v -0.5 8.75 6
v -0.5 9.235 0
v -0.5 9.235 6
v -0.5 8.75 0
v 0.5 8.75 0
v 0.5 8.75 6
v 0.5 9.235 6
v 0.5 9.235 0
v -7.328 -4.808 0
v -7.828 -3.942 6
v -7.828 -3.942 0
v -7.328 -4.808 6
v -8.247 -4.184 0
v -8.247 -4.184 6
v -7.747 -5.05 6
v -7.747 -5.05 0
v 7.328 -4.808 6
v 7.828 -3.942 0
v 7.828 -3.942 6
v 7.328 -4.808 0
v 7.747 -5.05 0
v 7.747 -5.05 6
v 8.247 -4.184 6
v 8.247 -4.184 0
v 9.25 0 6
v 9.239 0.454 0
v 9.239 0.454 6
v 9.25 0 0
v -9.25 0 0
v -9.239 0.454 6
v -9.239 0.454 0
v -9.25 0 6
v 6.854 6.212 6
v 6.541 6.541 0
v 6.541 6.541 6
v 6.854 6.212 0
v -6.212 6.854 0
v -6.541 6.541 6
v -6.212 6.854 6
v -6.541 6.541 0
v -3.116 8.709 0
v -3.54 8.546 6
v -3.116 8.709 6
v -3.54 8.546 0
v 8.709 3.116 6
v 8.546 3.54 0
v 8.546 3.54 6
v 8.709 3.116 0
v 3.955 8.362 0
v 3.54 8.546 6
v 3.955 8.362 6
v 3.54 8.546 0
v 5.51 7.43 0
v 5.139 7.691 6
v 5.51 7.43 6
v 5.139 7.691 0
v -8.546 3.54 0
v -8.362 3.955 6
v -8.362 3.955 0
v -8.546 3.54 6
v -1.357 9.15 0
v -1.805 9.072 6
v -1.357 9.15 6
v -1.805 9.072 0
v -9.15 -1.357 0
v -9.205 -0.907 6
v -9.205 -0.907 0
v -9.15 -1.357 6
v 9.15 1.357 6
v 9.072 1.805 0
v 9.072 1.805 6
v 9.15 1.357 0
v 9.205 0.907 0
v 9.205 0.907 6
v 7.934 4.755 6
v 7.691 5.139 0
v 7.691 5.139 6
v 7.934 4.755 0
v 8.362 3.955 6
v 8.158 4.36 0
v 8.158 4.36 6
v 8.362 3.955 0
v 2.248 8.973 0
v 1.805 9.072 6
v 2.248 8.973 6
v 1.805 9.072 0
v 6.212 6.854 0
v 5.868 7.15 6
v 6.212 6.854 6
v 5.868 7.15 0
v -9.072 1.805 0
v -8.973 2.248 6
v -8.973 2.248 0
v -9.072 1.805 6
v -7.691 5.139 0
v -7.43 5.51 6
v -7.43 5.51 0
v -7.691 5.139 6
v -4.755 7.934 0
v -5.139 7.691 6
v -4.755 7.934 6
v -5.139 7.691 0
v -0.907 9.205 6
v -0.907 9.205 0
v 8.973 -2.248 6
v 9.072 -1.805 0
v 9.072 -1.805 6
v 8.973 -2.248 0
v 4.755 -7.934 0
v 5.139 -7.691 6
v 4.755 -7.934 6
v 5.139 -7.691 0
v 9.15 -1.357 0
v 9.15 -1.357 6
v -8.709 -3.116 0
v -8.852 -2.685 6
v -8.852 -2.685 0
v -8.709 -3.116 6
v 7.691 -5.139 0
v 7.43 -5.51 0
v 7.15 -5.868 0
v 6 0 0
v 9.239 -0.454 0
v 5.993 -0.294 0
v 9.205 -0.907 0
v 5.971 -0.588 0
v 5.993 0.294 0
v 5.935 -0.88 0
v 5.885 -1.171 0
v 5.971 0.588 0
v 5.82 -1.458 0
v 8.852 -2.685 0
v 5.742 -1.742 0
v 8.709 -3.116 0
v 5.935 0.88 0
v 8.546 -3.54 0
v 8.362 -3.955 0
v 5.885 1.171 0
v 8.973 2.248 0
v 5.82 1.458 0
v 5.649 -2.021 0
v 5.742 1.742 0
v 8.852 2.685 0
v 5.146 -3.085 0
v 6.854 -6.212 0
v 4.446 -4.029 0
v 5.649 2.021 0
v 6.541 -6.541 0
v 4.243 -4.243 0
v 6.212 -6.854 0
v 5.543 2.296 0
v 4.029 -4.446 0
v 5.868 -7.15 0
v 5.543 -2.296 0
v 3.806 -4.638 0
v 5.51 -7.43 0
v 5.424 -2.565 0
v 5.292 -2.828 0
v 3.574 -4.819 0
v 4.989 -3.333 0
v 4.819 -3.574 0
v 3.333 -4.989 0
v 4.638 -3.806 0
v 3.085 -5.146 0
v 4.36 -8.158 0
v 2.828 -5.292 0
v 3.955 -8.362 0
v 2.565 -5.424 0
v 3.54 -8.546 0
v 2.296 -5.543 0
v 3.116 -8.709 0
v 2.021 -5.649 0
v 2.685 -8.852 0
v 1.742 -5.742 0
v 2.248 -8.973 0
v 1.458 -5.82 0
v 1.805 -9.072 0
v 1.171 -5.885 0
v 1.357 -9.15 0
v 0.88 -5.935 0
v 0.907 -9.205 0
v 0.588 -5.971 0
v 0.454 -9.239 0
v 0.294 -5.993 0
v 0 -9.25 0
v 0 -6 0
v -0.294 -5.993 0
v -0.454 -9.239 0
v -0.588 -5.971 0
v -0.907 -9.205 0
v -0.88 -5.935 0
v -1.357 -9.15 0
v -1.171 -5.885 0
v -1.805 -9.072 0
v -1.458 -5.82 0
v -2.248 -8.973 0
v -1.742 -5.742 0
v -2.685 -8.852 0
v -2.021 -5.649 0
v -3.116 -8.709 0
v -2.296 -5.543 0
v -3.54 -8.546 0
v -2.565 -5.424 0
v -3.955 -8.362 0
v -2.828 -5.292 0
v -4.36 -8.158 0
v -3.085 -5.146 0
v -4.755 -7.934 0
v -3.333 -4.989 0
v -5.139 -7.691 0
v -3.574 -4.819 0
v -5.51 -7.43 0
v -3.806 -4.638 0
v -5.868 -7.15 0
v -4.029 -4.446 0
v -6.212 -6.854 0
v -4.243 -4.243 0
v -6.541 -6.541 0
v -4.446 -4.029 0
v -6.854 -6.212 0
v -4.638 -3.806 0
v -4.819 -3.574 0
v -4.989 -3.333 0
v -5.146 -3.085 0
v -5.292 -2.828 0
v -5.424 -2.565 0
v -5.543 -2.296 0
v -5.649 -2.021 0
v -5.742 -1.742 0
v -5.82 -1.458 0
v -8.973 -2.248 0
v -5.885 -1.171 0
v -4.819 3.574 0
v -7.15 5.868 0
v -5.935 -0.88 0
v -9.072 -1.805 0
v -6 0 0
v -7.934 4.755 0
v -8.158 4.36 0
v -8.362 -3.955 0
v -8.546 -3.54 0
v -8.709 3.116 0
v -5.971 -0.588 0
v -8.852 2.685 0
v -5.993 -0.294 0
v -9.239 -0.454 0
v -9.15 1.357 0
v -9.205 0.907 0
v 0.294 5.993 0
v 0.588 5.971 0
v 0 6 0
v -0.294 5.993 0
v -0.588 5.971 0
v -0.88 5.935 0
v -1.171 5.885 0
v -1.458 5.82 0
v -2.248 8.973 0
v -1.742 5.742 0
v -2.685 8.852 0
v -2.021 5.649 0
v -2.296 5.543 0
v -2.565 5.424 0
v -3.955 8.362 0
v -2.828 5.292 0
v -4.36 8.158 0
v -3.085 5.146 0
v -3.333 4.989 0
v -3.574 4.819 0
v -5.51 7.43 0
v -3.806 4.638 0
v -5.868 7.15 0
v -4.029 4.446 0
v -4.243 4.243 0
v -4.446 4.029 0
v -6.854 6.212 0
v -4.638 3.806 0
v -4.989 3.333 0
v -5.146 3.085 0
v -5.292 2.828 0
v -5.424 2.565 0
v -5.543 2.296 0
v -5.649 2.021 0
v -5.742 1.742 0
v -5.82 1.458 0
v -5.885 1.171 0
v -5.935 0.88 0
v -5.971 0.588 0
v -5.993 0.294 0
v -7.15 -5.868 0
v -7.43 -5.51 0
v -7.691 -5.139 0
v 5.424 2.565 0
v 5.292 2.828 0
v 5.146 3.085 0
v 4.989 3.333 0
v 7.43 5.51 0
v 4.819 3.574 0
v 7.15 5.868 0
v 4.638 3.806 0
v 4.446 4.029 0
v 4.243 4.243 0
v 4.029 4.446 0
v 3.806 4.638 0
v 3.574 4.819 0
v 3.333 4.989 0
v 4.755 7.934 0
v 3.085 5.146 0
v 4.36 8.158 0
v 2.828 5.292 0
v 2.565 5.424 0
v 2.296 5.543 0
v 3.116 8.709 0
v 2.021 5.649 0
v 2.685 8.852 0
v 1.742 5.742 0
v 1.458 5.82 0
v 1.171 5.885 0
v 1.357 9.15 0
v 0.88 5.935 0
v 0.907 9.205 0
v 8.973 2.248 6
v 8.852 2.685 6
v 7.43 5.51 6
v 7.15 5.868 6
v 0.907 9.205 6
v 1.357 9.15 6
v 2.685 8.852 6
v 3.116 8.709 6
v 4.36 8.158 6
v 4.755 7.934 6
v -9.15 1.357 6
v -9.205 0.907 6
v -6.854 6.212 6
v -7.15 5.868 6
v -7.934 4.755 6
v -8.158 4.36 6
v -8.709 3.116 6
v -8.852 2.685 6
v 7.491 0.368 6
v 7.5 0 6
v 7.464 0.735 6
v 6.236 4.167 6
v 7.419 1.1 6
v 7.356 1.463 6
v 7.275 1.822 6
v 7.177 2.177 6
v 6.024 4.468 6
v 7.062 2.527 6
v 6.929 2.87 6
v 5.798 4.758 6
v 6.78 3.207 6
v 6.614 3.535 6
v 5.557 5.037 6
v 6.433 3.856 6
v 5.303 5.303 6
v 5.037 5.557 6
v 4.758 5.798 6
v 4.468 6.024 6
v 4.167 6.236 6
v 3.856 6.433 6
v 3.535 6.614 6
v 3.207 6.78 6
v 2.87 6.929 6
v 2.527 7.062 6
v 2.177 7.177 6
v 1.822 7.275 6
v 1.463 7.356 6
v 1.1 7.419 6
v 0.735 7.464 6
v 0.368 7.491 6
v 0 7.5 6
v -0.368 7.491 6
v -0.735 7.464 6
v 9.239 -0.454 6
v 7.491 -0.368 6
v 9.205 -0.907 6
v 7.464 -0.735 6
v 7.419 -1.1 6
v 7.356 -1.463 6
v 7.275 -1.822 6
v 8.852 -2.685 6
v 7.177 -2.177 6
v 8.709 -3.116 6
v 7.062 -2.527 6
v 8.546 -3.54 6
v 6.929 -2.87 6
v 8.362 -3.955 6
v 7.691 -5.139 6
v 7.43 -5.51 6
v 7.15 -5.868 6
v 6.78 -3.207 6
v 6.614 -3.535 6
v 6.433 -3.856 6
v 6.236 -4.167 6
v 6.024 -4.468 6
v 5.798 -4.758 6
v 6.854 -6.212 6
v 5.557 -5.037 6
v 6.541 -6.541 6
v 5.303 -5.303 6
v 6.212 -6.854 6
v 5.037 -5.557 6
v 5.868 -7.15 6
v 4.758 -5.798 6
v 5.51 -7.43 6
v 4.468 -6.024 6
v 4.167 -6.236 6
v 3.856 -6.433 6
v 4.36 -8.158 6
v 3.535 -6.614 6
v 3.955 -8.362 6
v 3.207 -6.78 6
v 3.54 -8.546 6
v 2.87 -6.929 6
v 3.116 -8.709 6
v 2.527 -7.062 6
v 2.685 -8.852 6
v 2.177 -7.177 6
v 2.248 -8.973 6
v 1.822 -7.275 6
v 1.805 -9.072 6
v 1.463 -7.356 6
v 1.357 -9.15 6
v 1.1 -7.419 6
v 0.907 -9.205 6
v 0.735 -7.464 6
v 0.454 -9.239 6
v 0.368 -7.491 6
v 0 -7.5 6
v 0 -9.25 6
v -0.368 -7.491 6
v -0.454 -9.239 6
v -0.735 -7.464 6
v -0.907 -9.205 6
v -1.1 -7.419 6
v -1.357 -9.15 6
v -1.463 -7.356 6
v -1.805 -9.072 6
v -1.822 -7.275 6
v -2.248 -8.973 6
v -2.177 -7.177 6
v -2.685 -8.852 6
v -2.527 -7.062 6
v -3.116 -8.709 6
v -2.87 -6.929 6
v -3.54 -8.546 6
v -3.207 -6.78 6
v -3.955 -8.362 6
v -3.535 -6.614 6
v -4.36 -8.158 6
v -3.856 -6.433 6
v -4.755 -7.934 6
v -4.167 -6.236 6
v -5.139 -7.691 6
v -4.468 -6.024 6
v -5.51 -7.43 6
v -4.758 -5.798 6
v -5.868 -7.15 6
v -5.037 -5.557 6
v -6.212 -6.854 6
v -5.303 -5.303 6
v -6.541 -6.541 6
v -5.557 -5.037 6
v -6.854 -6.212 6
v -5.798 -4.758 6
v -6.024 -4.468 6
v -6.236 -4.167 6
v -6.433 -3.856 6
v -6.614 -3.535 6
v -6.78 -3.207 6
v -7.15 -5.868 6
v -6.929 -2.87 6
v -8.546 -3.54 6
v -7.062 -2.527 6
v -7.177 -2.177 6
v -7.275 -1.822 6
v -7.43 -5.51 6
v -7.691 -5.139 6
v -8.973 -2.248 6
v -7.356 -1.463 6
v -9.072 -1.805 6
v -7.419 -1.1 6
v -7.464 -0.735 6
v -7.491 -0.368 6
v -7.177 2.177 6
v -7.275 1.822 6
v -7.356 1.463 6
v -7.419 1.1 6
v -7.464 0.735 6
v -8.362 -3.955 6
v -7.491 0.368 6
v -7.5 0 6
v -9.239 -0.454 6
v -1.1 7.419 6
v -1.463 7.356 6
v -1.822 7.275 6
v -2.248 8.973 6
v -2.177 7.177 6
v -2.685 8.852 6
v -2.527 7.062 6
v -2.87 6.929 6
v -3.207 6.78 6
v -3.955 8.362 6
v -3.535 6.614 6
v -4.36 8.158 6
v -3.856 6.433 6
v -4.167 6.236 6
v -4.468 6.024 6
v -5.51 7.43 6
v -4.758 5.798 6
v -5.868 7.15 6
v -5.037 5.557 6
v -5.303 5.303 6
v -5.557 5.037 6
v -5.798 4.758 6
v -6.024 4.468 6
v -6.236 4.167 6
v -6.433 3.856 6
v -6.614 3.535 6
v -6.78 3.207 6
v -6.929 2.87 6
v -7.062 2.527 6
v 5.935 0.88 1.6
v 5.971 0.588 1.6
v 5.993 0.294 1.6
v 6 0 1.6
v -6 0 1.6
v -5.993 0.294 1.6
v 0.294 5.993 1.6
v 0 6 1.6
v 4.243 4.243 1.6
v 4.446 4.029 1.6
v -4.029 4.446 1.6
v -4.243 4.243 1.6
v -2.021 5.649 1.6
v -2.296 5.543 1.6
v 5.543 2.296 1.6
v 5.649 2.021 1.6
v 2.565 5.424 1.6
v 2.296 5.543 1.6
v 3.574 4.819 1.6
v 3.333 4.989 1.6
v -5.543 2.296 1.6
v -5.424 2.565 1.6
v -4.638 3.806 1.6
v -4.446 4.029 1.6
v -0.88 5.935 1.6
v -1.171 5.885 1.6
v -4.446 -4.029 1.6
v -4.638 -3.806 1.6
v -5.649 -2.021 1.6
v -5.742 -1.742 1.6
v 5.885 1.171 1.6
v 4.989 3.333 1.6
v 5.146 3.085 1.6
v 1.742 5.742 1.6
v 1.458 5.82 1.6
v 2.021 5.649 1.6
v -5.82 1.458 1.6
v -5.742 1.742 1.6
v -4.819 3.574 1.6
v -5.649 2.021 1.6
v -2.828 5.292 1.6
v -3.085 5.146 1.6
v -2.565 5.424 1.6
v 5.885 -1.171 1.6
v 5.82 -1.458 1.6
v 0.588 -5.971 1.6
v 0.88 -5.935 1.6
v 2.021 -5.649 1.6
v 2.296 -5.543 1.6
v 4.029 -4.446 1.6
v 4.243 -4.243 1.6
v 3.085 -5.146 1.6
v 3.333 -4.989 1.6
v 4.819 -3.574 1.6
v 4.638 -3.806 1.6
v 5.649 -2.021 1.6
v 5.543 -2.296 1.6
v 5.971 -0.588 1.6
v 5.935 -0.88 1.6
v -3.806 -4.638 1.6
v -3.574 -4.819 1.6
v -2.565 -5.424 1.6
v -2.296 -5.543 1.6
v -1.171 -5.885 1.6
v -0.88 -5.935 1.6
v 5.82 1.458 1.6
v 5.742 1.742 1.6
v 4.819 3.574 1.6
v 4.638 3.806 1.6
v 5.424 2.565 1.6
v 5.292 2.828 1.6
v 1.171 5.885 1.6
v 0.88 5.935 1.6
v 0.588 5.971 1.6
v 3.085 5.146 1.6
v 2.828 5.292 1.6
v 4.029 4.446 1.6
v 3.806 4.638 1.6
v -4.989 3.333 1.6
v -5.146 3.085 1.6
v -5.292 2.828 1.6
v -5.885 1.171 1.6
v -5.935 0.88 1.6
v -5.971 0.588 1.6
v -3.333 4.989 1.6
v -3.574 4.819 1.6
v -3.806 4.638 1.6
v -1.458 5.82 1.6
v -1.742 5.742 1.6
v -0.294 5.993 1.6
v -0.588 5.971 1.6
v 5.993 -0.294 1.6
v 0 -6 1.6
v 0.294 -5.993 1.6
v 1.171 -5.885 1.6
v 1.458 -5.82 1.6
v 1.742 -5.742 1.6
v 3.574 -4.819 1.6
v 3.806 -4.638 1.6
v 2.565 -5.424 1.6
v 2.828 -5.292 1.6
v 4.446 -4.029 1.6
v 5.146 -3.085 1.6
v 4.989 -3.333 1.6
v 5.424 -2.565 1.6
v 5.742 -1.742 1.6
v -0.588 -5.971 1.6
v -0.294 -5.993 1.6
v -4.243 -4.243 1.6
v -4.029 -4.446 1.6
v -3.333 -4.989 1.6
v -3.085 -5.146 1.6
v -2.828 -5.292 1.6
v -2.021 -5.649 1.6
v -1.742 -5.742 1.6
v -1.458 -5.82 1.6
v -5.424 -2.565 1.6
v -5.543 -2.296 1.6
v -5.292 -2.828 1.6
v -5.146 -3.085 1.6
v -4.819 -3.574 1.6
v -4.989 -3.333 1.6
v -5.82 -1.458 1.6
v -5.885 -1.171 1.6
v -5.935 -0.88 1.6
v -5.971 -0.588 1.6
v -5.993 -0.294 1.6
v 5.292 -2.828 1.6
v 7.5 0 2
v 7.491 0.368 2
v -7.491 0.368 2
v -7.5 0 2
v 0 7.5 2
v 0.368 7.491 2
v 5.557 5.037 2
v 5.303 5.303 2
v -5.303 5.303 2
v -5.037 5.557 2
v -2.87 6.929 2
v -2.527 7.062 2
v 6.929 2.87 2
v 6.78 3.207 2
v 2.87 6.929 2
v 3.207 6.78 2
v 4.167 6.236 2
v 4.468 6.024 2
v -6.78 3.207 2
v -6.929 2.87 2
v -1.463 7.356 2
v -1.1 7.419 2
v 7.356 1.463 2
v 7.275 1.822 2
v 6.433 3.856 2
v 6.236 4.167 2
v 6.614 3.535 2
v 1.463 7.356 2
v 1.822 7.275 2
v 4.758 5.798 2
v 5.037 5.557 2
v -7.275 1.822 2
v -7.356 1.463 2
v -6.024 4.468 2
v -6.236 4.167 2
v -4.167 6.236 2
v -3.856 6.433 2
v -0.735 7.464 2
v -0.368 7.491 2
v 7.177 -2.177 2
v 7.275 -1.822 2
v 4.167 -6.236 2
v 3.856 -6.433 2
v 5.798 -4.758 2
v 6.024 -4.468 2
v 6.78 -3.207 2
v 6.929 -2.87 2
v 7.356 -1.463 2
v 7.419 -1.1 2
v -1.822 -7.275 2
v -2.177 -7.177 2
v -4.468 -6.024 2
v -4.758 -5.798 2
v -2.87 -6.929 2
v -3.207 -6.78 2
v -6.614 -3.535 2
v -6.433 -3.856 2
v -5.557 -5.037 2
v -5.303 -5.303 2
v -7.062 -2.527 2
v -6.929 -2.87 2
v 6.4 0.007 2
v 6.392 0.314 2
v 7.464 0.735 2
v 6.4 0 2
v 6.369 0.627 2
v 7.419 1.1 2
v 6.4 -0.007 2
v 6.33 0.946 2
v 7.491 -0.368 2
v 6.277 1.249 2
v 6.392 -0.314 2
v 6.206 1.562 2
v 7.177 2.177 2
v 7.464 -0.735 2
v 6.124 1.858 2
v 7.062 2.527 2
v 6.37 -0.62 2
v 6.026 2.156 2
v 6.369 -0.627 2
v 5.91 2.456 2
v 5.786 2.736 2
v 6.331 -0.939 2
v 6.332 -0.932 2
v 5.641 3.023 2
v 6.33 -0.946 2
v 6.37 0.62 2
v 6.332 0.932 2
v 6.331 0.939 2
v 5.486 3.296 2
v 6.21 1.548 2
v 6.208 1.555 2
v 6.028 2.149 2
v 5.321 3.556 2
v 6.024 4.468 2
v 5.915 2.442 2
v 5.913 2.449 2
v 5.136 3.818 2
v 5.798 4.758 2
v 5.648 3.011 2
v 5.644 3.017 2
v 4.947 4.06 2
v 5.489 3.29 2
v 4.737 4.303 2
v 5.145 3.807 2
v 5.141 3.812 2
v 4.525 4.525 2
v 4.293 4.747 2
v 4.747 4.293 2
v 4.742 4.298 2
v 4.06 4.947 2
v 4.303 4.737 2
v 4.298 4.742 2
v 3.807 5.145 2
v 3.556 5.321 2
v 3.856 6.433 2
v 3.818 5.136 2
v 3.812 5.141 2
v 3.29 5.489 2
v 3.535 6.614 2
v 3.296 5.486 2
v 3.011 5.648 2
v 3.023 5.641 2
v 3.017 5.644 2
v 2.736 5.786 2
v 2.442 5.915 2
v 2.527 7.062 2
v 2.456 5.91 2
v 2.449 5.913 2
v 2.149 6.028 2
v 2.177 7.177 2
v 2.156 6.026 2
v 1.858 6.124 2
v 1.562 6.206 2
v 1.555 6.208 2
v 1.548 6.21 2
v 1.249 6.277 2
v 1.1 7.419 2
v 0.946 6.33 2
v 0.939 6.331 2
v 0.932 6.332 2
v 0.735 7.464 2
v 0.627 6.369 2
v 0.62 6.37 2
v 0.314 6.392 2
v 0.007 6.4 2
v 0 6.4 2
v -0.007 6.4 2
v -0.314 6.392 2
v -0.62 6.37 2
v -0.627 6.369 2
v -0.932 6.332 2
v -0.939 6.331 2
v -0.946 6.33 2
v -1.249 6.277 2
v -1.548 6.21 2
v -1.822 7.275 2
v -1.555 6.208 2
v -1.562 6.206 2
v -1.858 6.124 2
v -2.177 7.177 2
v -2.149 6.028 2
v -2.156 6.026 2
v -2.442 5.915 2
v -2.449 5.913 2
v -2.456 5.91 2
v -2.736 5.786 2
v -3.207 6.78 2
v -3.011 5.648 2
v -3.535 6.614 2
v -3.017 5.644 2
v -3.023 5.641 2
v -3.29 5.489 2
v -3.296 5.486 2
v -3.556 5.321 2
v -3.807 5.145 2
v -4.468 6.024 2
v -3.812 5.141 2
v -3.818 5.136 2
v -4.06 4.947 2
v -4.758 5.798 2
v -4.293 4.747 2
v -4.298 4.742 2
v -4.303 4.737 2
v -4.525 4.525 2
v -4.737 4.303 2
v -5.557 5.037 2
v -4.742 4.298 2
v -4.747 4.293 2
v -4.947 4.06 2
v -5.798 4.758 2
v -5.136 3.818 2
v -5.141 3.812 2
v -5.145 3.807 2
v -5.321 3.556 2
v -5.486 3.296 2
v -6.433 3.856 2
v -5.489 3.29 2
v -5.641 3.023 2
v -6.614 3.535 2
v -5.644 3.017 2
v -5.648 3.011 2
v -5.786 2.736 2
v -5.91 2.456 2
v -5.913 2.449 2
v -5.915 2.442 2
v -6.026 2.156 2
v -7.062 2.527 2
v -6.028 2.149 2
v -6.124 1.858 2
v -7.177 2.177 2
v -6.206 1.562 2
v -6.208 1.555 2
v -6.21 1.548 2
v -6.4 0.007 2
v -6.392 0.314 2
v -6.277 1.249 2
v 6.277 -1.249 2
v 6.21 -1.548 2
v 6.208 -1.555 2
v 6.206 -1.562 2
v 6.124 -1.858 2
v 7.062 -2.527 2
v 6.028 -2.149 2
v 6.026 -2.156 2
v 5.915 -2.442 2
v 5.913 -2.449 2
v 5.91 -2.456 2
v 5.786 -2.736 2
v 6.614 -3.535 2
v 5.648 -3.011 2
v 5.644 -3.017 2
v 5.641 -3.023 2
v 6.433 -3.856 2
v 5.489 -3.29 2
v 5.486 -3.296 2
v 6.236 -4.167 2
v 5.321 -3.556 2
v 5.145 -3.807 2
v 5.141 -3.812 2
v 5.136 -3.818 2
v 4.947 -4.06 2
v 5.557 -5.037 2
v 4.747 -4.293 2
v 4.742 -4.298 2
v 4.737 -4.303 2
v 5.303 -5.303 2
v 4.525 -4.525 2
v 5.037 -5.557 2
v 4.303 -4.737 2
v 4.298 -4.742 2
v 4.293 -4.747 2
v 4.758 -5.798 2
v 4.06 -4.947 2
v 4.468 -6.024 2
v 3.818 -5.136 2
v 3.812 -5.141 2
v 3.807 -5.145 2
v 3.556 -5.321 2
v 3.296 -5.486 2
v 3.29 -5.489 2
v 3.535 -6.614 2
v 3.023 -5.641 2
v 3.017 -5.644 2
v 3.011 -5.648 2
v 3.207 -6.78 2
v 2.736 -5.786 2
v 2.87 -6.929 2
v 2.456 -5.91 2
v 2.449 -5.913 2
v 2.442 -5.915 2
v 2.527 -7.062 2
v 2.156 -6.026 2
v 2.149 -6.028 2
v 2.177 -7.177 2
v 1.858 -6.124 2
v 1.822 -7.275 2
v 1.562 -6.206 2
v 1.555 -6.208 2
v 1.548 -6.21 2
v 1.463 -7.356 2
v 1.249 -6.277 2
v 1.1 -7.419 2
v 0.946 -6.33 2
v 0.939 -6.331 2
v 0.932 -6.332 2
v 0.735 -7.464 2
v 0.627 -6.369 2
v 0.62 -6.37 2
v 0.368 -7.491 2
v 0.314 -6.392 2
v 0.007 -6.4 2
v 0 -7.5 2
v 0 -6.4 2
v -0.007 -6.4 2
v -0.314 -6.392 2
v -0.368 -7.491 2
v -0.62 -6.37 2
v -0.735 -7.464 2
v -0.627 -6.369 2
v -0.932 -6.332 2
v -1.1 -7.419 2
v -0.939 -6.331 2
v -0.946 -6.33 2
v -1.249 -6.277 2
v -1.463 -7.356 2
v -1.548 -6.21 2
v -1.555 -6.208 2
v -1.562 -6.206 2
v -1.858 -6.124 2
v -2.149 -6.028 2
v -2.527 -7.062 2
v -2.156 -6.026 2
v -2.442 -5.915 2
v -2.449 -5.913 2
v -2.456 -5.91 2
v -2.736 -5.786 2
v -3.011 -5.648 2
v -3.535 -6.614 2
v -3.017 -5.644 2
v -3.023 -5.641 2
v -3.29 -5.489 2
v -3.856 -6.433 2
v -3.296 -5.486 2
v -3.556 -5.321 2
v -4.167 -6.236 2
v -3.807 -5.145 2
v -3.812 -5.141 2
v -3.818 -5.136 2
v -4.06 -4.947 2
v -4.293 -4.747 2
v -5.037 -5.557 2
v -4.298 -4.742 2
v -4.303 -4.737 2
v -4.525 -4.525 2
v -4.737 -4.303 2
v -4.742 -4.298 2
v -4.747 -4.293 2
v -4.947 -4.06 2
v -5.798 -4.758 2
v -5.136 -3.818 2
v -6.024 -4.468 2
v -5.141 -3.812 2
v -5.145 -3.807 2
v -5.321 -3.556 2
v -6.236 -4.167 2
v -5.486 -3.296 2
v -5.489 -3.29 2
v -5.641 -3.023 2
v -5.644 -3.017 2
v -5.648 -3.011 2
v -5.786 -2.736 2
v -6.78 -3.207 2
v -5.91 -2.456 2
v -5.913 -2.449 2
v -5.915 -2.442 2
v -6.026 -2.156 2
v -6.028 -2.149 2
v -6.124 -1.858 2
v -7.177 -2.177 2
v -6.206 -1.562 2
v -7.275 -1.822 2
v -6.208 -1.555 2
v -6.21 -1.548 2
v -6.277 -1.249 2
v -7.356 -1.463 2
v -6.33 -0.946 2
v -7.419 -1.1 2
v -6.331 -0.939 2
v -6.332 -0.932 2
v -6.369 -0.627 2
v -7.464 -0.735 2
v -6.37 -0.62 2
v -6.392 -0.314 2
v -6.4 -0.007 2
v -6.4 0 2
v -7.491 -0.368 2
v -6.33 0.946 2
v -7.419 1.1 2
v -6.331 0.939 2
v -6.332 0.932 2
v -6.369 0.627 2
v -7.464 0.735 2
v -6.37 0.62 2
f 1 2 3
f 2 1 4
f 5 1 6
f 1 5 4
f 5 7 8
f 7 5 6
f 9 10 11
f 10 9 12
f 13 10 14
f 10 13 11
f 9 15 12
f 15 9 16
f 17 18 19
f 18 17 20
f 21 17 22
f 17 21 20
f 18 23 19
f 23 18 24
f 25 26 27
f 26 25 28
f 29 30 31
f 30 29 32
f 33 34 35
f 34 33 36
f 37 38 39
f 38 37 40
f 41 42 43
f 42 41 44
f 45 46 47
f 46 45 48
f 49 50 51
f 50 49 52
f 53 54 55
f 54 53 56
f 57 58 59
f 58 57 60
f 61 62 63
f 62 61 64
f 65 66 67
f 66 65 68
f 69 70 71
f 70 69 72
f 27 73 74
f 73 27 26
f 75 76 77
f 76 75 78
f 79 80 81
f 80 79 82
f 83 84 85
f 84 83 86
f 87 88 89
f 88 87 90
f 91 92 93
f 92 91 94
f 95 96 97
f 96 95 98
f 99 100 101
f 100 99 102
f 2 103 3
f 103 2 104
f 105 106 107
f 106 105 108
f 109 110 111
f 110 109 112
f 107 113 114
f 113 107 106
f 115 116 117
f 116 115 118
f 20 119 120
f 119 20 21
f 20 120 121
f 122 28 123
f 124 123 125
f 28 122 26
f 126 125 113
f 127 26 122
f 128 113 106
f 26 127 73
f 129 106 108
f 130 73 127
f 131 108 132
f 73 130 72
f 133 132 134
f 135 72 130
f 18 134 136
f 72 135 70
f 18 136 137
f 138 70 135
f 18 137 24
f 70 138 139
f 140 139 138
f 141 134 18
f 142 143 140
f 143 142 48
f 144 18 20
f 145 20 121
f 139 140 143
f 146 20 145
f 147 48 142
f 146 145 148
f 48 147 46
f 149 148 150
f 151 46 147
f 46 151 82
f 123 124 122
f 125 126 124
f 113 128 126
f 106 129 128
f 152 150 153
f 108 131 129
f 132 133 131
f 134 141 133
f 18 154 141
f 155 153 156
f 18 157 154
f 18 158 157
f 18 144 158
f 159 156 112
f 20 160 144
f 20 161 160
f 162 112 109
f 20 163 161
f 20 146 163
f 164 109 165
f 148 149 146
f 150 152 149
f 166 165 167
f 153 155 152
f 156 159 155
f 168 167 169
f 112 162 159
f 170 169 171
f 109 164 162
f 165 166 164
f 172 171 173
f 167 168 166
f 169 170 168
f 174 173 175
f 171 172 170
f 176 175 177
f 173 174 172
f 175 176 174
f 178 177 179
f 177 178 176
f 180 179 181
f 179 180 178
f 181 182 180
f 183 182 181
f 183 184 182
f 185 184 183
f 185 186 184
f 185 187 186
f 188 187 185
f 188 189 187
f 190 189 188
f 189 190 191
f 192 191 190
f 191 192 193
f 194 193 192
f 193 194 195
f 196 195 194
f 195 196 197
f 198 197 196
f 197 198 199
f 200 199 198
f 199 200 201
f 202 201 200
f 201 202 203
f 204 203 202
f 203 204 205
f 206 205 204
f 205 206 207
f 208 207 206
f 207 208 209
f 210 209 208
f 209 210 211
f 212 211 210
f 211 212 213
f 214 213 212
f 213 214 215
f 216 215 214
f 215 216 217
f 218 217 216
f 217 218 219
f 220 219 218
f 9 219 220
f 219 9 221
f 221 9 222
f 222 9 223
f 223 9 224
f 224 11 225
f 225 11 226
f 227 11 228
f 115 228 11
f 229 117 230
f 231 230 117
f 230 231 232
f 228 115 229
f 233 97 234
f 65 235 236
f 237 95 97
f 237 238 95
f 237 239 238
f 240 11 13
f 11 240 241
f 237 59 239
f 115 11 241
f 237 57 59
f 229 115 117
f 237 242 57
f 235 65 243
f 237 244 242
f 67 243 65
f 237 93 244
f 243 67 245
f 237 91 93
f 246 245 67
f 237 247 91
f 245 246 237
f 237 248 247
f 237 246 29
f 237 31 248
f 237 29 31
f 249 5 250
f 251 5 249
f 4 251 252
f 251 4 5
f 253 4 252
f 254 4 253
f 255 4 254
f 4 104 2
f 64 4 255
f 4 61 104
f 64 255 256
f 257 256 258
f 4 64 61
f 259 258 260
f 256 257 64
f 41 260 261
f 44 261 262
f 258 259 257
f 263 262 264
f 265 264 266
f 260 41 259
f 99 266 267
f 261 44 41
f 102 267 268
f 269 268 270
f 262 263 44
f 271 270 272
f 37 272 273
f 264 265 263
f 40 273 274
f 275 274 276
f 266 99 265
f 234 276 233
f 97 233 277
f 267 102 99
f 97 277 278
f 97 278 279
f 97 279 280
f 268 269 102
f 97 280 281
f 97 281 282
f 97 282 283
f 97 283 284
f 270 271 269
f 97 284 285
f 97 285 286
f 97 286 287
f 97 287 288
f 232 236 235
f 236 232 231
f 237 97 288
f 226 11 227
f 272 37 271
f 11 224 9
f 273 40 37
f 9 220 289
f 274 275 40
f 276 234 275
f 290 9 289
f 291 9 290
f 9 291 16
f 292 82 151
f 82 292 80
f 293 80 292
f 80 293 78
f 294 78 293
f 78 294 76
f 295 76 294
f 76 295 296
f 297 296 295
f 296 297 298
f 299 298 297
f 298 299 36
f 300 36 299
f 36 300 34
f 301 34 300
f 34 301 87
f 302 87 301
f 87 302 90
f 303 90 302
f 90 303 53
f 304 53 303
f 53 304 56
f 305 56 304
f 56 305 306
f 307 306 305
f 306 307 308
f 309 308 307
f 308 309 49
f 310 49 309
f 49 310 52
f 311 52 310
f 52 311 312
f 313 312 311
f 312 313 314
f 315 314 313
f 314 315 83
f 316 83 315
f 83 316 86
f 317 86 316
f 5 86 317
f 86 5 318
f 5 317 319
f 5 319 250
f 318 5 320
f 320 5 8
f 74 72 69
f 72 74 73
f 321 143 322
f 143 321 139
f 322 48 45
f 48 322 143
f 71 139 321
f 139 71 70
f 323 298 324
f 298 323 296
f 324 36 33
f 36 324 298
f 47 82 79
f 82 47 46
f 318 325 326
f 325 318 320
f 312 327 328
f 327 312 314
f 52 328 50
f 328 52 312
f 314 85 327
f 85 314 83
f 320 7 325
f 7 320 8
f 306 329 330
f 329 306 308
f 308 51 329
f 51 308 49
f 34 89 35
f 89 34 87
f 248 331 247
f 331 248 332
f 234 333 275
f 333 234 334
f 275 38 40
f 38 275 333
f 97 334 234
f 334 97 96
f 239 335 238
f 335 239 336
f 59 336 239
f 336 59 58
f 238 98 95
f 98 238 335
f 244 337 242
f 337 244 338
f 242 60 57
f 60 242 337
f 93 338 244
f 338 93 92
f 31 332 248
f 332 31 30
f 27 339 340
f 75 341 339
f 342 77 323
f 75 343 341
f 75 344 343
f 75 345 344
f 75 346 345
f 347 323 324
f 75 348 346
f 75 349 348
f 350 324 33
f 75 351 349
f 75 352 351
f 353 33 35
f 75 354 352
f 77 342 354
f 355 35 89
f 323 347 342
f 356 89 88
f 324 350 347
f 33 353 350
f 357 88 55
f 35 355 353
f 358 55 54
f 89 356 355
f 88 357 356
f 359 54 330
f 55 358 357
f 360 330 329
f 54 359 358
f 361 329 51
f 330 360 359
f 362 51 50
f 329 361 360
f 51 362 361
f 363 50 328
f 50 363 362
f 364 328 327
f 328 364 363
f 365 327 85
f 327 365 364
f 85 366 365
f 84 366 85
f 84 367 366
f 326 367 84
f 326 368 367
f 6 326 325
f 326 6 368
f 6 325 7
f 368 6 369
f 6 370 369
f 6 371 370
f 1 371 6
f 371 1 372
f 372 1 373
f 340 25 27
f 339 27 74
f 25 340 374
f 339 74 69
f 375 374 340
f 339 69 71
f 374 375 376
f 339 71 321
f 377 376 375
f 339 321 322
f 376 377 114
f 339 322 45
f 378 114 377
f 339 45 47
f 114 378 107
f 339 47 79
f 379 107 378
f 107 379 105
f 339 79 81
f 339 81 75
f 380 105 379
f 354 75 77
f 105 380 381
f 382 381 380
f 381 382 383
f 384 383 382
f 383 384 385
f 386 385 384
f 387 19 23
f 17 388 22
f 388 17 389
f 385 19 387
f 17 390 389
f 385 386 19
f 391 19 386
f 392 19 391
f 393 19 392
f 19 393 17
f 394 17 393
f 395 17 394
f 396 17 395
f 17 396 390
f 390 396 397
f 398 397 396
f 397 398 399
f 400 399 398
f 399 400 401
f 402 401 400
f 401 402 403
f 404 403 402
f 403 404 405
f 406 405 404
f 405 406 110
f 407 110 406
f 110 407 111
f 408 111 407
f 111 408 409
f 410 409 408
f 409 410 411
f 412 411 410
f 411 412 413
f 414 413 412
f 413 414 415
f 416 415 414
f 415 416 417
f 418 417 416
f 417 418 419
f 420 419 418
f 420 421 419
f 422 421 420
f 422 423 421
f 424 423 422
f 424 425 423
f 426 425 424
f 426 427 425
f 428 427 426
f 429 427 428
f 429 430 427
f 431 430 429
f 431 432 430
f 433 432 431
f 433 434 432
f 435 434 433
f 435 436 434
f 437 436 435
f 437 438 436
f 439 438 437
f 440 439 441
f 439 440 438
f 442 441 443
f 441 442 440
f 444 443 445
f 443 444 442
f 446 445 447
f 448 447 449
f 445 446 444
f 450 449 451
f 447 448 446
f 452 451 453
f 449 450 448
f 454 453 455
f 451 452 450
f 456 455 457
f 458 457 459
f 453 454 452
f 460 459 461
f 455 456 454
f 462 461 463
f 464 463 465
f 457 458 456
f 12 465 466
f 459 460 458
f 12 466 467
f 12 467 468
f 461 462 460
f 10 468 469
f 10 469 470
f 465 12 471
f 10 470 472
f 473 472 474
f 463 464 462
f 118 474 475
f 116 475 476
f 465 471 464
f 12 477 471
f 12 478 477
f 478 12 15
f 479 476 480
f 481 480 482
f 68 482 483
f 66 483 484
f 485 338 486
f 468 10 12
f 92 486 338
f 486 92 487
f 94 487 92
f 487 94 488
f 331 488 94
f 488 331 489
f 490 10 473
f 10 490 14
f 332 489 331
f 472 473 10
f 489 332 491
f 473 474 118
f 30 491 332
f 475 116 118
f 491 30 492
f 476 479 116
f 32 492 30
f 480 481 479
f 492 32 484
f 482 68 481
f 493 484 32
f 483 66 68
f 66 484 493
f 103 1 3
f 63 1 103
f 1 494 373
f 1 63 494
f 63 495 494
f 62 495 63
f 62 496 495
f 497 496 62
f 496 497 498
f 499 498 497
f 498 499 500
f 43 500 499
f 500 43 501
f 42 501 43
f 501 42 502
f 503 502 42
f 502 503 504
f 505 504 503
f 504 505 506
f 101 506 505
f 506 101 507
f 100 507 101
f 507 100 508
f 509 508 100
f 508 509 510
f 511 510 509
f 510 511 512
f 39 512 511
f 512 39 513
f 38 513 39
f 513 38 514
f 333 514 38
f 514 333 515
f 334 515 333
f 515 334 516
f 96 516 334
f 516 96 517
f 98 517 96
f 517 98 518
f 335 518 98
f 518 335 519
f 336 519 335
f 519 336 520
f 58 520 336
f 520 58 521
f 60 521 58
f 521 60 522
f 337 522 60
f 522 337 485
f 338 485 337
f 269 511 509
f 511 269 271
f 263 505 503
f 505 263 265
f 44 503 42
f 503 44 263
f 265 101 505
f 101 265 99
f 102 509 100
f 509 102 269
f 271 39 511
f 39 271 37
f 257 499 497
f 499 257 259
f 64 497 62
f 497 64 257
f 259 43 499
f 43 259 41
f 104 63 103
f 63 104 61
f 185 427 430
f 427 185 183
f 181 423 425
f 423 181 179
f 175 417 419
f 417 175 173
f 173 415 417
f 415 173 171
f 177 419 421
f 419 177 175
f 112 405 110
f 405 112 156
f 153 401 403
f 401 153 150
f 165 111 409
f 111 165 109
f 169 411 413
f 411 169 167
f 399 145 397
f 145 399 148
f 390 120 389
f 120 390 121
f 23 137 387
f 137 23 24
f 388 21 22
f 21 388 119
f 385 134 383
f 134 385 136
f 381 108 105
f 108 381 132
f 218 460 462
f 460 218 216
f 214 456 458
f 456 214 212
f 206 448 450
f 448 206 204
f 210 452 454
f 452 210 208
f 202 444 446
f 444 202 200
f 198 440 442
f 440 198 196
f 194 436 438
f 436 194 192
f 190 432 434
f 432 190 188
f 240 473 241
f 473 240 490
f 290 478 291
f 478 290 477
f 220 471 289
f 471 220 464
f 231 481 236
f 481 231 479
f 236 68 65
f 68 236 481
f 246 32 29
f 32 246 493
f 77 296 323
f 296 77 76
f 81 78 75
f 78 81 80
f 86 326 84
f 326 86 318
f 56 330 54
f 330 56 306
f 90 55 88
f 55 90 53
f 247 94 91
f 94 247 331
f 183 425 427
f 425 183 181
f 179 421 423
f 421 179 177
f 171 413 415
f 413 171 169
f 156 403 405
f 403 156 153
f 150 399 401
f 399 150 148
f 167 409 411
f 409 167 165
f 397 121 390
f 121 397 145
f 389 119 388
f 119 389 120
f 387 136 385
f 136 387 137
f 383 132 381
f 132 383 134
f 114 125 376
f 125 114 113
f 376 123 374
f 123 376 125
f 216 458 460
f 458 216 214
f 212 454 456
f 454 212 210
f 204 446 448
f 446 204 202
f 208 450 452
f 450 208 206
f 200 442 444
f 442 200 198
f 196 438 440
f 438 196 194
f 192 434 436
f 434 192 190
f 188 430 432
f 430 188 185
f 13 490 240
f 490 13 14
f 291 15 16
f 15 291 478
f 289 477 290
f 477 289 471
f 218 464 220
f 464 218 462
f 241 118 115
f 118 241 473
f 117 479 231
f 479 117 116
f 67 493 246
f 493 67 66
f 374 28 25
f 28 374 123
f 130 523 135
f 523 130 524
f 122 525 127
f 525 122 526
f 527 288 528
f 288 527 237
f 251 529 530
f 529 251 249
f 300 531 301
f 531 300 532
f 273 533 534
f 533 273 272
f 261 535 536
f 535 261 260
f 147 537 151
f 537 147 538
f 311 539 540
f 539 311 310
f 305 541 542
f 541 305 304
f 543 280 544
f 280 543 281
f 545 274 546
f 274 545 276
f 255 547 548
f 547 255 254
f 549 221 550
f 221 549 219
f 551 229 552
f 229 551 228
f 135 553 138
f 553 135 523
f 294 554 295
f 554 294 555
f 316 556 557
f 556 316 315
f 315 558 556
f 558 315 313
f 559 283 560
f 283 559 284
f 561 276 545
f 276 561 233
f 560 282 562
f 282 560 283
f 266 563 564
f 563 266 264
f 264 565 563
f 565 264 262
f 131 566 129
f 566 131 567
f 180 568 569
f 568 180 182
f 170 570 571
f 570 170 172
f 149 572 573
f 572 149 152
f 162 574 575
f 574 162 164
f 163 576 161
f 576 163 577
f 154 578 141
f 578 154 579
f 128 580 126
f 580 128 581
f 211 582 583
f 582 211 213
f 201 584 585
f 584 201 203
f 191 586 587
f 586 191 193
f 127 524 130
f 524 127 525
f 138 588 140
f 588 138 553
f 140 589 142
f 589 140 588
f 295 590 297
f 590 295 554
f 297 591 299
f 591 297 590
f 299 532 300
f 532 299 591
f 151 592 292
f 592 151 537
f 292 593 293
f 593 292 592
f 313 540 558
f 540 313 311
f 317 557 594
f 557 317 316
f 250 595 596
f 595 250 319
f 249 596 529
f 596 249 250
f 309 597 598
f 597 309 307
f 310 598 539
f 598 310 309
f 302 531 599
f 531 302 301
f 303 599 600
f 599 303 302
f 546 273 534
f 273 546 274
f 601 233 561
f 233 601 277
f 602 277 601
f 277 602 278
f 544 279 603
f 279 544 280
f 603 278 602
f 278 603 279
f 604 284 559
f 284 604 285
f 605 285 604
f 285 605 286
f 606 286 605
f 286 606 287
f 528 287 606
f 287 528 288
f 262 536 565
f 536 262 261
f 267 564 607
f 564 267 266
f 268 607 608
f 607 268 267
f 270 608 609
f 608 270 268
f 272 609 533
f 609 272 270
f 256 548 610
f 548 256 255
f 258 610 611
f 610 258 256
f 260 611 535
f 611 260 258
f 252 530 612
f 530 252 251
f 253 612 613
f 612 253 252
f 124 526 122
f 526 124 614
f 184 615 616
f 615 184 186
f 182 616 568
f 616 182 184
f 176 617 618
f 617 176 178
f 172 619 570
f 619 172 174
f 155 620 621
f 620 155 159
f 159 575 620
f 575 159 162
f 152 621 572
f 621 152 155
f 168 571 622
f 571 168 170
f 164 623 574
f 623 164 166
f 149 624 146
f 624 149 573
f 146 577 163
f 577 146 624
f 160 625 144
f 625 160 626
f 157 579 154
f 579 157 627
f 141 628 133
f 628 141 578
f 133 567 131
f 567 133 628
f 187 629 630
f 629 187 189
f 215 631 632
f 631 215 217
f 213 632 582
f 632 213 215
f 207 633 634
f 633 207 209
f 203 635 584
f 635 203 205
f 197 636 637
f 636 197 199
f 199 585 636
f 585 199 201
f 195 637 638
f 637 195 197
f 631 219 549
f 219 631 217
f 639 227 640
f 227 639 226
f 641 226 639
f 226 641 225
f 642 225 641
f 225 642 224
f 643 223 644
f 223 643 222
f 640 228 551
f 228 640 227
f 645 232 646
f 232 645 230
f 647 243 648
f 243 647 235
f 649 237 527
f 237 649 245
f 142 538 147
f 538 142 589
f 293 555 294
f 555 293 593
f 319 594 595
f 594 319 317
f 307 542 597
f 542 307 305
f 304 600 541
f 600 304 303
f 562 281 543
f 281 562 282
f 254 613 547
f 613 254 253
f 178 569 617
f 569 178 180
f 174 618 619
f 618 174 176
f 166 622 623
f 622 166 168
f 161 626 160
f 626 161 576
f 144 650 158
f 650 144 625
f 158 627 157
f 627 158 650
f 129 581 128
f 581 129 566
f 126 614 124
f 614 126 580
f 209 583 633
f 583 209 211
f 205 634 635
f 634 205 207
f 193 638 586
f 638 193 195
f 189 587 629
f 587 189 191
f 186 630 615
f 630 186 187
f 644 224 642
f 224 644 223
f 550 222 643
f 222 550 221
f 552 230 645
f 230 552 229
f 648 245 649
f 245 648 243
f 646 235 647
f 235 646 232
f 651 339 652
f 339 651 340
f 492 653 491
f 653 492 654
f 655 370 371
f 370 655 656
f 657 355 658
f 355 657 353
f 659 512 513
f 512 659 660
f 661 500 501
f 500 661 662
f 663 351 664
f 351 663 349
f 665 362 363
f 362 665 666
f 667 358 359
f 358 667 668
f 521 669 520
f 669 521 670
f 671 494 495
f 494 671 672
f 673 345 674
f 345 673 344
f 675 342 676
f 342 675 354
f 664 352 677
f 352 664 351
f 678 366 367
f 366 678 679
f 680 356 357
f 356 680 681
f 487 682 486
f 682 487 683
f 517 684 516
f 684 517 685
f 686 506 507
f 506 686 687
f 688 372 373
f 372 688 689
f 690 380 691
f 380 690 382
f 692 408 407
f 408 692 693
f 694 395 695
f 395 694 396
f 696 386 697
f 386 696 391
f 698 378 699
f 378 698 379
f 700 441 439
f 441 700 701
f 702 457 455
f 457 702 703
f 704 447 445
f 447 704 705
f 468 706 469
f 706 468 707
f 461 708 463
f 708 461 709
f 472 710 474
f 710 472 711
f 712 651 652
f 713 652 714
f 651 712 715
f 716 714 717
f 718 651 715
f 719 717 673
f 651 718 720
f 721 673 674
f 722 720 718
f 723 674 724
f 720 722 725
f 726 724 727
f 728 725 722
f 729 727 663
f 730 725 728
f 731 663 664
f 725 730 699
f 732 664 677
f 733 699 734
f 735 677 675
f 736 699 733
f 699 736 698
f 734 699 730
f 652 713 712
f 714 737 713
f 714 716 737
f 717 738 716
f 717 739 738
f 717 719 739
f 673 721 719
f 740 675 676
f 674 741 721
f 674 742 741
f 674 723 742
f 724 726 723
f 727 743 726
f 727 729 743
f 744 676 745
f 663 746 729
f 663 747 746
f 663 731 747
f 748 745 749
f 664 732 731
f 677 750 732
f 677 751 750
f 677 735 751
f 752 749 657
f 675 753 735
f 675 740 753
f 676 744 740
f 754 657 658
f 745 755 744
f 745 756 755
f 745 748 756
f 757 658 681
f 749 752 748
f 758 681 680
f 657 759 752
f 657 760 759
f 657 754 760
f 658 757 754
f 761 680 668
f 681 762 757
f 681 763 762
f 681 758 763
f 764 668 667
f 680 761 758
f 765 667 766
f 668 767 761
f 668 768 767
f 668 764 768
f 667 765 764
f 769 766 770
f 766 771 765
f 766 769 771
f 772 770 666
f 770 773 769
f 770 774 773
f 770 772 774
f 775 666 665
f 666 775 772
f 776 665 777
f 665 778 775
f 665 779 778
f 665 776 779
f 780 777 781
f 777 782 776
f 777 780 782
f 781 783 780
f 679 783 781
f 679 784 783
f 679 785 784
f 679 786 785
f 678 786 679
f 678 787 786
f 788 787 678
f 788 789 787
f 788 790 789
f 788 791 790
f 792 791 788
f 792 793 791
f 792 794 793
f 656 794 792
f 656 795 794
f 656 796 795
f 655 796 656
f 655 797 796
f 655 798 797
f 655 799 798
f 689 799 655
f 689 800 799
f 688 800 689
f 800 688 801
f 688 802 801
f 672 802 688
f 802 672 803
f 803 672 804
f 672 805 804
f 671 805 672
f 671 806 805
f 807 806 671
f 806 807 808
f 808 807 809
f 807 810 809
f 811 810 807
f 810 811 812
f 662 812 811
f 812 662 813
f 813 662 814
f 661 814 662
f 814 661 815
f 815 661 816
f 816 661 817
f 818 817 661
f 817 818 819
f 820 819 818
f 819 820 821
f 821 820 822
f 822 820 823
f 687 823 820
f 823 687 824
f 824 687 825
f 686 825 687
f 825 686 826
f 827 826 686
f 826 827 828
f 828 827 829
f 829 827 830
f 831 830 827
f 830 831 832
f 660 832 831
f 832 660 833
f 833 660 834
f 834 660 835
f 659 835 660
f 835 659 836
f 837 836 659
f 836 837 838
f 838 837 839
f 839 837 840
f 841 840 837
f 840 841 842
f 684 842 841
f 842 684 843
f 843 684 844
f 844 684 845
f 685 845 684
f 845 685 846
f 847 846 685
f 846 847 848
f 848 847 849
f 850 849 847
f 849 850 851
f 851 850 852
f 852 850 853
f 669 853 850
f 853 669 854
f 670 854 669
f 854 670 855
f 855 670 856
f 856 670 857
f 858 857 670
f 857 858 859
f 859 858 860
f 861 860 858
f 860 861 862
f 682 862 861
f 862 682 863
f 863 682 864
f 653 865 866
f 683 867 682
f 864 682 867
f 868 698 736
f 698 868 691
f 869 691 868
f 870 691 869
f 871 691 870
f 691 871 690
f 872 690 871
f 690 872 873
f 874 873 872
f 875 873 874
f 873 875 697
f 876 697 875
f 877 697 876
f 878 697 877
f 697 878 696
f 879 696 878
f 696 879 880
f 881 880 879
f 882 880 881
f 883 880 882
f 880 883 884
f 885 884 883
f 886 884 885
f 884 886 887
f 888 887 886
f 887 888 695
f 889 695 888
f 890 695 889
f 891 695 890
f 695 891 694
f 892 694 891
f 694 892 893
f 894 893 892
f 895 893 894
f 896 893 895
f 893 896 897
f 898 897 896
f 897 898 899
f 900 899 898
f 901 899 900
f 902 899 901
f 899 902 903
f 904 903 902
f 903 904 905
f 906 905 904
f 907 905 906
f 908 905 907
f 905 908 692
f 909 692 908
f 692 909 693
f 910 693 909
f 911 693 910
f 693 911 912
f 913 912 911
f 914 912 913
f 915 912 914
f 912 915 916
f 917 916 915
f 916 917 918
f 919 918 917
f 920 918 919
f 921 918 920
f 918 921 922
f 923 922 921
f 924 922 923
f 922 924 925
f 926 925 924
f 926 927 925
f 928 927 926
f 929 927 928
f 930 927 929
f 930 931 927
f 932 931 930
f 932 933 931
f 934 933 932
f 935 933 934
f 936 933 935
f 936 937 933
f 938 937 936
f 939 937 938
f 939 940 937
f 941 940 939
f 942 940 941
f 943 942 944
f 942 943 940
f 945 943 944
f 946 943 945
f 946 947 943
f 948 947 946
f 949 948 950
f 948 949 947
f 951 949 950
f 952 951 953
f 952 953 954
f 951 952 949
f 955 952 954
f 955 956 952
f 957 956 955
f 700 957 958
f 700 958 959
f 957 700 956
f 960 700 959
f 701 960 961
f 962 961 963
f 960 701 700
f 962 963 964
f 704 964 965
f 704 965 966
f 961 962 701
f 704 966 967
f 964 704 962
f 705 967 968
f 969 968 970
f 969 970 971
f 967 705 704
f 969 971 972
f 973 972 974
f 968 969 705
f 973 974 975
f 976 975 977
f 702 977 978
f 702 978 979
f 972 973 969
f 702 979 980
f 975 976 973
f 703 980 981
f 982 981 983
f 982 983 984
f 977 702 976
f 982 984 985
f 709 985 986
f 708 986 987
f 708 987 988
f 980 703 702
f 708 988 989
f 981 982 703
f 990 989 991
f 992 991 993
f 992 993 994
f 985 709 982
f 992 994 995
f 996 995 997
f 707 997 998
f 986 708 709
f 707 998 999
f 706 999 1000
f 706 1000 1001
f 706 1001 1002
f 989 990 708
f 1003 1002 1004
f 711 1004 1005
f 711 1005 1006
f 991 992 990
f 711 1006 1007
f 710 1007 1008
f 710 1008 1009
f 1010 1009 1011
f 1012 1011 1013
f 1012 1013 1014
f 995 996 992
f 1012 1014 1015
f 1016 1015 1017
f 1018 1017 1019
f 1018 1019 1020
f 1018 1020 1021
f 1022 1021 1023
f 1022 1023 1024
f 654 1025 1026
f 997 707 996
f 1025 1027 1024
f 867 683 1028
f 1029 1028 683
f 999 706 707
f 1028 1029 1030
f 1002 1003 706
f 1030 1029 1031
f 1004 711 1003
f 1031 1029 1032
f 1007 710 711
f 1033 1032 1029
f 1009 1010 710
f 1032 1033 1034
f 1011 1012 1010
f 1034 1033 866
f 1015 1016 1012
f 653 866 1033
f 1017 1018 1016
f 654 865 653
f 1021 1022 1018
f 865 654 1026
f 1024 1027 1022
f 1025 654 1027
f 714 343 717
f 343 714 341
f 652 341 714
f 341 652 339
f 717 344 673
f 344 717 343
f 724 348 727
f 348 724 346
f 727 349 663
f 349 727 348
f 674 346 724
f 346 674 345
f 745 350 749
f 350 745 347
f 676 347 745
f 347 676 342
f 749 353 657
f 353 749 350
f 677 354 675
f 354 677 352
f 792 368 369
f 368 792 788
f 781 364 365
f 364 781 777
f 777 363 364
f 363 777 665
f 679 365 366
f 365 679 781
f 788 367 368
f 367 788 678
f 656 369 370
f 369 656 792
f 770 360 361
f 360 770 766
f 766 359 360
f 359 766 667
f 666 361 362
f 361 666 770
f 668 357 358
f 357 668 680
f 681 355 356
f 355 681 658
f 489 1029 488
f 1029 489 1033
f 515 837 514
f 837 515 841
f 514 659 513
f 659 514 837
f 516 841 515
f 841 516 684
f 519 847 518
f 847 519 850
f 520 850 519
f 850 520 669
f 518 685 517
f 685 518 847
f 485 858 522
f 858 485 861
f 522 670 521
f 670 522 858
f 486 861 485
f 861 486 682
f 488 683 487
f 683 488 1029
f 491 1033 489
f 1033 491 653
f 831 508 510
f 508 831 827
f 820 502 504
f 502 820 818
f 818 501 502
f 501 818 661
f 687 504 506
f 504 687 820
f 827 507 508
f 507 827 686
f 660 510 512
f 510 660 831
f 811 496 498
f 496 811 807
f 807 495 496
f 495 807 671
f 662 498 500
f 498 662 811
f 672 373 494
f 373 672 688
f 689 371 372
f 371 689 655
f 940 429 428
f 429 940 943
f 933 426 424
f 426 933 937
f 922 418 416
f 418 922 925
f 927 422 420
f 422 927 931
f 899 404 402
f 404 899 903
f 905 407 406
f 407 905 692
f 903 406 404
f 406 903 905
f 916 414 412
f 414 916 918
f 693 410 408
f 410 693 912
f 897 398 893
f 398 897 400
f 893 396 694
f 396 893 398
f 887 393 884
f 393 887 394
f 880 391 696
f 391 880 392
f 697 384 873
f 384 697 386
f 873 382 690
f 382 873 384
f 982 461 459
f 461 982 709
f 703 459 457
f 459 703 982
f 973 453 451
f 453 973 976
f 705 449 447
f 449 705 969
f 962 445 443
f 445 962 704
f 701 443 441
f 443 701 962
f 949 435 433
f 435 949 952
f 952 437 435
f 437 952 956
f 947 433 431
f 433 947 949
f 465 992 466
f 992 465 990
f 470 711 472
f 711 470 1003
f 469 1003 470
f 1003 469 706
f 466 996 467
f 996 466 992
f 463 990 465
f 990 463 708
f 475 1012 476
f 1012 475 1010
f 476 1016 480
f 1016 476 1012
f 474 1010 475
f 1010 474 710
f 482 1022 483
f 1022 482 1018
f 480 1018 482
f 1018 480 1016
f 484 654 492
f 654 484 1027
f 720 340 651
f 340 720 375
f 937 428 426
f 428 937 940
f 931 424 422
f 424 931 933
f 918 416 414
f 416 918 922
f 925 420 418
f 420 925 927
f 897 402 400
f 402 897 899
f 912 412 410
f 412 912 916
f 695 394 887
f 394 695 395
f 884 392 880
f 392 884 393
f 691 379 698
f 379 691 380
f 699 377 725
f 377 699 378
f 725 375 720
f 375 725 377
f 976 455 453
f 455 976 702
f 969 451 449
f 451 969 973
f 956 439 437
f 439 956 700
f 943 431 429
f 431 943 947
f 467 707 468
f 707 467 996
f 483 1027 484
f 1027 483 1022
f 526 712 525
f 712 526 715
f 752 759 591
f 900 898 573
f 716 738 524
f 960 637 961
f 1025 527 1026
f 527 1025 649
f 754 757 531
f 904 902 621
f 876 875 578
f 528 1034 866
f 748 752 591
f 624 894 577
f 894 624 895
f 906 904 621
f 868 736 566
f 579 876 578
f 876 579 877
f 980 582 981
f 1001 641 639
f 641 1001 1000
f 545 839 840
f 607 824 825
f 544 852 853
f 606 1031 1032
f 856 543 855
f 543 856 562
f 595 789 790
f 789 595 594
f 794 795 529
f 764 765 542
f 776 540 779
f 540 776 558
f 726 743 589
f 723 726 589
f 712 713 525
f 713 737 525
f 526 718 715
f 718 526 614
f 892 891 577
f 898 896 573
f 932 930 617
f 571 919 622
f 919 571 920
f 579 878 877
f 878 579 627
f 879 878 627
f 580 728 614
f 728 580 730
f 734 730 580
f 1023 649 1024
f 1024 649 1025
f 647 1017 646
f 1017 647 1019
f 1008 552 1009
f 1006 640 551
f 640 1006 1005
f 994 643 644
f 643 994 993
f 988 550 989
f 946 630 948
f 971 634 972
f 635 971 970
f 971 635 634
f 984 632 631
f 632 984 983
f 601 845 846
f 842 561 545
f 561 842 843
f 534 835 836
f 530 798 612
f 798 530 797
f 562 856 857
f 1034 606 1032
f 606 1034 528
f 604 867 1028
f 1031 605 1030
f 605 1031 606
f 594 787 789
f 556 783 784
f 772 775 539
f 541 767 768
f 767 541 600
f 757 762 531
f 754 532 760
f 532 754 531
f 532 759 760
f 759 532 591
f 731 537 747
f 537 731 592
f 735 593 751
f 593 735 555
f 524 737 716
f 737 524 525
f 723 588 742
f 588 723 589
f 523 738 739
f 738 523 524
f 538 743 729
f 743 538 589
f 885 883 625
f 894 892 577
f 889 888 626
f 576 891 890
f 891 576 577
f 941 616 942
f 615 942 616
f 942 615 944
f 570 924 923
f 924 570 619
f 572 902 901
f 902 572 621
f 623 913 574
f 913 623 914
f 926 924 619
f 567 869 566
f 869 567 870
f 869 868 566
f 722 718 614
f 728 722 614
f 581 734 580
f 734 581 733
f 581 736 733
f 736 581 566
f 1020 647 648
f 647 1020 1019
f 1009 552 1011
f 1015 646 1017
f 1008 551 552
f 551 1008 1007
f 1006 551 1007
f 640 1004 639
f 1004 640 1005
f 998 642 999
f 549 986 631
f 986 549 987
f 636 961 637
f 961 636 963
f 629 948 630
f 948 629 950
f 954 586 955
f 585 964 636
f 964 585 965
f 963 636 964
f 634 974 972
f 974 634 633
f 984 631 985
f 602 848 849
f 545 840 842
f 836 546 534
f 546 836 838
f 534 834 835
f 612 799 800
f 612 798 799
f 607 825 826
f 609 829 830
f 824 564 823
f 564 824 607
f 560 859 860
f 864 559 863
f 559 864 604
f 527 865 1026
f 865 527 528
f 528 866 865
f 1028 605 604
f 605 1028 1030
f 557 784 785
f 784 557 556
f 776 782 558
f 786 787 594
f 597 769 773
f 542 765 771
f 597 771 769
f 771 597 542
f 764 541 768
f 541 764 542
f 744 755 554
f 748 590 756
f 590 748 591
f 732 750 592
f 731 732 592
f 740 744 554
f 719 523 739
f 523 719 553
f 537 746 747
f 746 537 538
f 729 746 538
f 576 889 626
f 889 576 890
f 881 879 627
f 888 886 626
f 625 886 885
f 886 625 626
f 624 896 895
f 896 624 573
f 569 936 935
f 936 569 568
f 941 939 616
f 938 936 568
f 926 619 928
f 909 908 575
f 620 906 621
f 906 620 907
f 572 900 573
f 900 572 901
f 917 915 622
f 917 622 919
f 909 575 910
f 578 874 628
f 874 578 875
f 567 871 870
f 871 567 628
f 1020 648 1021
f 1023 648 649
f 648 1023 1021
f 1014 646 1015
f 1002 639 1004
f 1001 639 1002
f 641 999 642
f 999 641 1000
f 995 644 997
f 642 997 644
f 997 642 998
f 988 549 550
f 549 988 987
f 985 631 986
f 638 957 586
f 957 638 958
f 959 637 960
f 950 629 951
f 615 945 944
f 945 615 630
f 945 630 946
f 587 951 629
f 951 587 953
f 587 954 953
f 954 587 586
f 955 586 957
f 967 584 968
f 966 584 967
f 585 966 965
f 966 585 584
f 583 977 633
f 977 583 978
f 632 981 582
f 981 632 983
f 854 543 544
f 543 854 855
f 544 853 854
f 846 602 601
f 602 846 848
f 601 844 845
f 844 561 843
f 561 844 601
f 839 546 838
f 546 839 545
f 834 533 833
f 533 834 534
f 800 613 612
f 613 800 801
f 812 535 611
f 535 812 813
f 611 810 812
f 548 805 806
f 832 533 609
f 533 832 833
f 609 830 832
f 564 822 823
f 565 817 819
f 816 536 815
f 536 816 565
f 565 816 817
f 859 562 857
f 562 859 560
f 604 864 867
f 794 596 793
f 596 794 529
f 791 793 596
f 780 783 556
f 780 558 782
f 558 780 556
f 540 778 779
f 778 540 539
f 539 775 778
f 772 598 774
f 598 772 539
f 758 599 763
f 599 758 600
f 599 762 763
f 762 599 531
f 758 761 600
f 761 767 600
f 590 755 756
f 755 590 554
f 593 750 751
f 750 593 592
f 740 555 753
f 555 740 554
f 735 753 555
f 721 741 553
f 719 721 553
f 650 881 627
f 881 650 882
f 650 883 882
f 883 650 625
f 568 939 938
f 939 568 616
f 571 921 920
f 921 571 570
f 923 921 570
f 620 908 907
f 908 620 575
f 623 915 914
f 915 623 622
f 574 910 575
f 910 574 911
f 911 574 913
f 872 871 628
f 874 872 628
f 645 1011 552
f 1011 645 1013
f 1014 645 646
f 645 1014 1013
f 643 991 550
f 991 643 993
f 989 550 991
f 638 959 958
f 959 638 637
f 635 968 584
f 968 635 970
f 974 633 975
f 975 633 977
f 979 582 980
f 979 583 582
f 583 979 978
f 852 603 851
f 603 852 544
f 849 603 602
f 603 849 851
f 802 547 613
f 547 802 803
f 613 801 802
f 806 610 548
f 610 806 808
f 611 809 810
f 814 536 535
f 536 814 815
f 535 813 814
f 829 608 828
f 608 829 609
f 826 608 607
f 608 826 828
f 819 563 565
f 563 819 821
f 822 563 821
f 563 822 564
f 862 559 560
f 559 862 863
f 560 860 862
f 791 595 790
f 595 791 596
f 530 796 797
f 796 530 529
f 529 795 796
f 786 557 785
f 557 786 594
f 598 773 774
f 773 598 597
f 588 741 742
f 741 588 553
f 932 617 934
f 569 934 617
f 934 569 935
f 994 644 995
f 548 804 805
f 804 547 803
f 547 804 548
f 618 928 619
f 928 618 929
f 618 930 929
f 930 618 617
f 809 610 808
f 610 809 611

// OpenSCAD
// Printed retaining disk for the 12mm bullet pixels (Ray Wu: body 12, front flange 13.6,
// dome 8, 30mm body behind the flange, side clips that grip a 2mm-thick panel).
// Each tree hole is cut from the front only: a 19 x 6mm counterbore, then a 15mm
// clearance hole through the 30mm oak. This disk sits flush in the counterbore (hot glue,
// or CA/epoxy); the bullet pushes in from the front, its flange rests on the disk and the
// clips snap behind the 2mm front lip into the relief. The lip's bore sets the fit.
//
// Prints flat, front face on the bed (smooth face under the flange), no supports: the
// relief opens upwards from the lip. The 0.4mm chamfer is on the back edge of the bore
// (the lip's top as printed), to lead the clips.
// PETG, 100% infill (or 4+ walls). A tree needs 92.
//
// Print the test strip first (bores 11.8 to 12.2, labelled on snap-off tabs); put the
// chosen bore in tools/tree_layout.py Params.hole_dia and in `bore` below.

part = "disk";           // "disk", "plate" (5 x 4 = 20) or "test" (5 bores, labelled)

disk_od   = 18.5;        // in a 19mm counterbore: 0.25mm glue gap all round
disk_t    = 6.0;         // must match the counterbore depth (tree_layout.py)
lip_t     = 2.0;         // = the clip gap: the clips snap behind this
relief_d  = 15.0;        // behind the lip, room for the clips to spring out (= clearance_dia)
bore      = 12.0;        // pixel body 12: set from the test strip
chamfer   = 0.4;         // back edge of the bore, leads the clips through
notches   = 3;           // glue notches on the OD (0 for none)
notch_w   = 1.0;
notch_d   = 0.5;

plate_nx  = 5;
plate_ny  = 4;
gap       = 2;           // between disks on the plate

test_bores = [11.8, 11.9, 12.0, 12.1, 12.2];
test_gap  = 3;           // between disks on the test strip
bridge_w  = 1.2;         // snap-off bridges and tab necks
bridge_t  = 0.6;         //   (3 layers at 0.2: bend them and they break)
tab_l     = 11;          // label tab under each disk
tab_w     = 6;
tab_t     = 1.0;
neck_l    = 2;           // disk edge to tab
text_size = 3.2;
text_h    = 0.6;         // embossed on the tab
font      = "Liberation Sans:style=Bold";

$fn = 128;               // round bore: ~0.3mm facets on a 12mm hole

module disk(b = bore) {
    difference() {
        cylinder(d = disk_od, h = disk_t);
        translate([0, 0, -1]) cylinder(d = b, h = disk_t + 2);
        translate([0, 0, lip_t]) cylinder(d = relief_d, h = disk_t);
        // back-edge chamfer of the lip (top as printed)
        translate([0, 0, lip_t - chamfer]) cylinder(d1 = b, d2 = b + 2 * chamfer + 0.02, h = chamfer + 0.01);
        // glue notches through the full thickness
        for (i = [0 : notches - 1]) if (notches > 0)
            rotate(i * 360 / notches + 90)
                translate([disk_od / 2 - notch_d, -notch_w / 2, -1]) cube([notch_d + 1, notch_w, disk_t + 2]);
    }
}

module plate() {
    p = disk_od + gap;
    for (i = [0 : plate_nx - 1], j = [0 : plate_ny - 1])
        translate([i * p, j * p, 0]) disk();
}

module test_strip() {
    n = len(test_bores);
    p = disk_od + test_gap;
    for (i = [0 : n - 1]) translate([i * p, 0, 0]) {
        disk(test_bores[i]);
        // label tab below the disk, on a thin snap-off neck
        translate([-bridge_w / 2, -disk_od / 2 - neck_l - 0.3, 0]) cube([bridge_w, neck_l + 0.6, bridge_t]);
        translate([-tab_l / 2, -disk_od / 2 - neck_l - tab_w, 0]) {
            cube([tab_l, tab_w, tab_t]);
            translate([tab_l / 2, tab_w / 2, tab_t - 0.01])
                linear_extrude(text_h + 0.01)
                    text(str(test_bores[i]), size = text_size, font = font, halign = "center", valign = "center");
        }
    }
    // snap-off bridges between neighbouring disks (on the centreline, clear of the notches)
    for (i = [0 : n - 2])
        translate([i * p + disk_od / 2 - 0.3, -bridge_w / 2, 0]) cube([test_gap + 0.6, bridge_w, bridge_t]);
}

if (part == "plate") plate();
else if (part == "test") test_strip();
else disk();
